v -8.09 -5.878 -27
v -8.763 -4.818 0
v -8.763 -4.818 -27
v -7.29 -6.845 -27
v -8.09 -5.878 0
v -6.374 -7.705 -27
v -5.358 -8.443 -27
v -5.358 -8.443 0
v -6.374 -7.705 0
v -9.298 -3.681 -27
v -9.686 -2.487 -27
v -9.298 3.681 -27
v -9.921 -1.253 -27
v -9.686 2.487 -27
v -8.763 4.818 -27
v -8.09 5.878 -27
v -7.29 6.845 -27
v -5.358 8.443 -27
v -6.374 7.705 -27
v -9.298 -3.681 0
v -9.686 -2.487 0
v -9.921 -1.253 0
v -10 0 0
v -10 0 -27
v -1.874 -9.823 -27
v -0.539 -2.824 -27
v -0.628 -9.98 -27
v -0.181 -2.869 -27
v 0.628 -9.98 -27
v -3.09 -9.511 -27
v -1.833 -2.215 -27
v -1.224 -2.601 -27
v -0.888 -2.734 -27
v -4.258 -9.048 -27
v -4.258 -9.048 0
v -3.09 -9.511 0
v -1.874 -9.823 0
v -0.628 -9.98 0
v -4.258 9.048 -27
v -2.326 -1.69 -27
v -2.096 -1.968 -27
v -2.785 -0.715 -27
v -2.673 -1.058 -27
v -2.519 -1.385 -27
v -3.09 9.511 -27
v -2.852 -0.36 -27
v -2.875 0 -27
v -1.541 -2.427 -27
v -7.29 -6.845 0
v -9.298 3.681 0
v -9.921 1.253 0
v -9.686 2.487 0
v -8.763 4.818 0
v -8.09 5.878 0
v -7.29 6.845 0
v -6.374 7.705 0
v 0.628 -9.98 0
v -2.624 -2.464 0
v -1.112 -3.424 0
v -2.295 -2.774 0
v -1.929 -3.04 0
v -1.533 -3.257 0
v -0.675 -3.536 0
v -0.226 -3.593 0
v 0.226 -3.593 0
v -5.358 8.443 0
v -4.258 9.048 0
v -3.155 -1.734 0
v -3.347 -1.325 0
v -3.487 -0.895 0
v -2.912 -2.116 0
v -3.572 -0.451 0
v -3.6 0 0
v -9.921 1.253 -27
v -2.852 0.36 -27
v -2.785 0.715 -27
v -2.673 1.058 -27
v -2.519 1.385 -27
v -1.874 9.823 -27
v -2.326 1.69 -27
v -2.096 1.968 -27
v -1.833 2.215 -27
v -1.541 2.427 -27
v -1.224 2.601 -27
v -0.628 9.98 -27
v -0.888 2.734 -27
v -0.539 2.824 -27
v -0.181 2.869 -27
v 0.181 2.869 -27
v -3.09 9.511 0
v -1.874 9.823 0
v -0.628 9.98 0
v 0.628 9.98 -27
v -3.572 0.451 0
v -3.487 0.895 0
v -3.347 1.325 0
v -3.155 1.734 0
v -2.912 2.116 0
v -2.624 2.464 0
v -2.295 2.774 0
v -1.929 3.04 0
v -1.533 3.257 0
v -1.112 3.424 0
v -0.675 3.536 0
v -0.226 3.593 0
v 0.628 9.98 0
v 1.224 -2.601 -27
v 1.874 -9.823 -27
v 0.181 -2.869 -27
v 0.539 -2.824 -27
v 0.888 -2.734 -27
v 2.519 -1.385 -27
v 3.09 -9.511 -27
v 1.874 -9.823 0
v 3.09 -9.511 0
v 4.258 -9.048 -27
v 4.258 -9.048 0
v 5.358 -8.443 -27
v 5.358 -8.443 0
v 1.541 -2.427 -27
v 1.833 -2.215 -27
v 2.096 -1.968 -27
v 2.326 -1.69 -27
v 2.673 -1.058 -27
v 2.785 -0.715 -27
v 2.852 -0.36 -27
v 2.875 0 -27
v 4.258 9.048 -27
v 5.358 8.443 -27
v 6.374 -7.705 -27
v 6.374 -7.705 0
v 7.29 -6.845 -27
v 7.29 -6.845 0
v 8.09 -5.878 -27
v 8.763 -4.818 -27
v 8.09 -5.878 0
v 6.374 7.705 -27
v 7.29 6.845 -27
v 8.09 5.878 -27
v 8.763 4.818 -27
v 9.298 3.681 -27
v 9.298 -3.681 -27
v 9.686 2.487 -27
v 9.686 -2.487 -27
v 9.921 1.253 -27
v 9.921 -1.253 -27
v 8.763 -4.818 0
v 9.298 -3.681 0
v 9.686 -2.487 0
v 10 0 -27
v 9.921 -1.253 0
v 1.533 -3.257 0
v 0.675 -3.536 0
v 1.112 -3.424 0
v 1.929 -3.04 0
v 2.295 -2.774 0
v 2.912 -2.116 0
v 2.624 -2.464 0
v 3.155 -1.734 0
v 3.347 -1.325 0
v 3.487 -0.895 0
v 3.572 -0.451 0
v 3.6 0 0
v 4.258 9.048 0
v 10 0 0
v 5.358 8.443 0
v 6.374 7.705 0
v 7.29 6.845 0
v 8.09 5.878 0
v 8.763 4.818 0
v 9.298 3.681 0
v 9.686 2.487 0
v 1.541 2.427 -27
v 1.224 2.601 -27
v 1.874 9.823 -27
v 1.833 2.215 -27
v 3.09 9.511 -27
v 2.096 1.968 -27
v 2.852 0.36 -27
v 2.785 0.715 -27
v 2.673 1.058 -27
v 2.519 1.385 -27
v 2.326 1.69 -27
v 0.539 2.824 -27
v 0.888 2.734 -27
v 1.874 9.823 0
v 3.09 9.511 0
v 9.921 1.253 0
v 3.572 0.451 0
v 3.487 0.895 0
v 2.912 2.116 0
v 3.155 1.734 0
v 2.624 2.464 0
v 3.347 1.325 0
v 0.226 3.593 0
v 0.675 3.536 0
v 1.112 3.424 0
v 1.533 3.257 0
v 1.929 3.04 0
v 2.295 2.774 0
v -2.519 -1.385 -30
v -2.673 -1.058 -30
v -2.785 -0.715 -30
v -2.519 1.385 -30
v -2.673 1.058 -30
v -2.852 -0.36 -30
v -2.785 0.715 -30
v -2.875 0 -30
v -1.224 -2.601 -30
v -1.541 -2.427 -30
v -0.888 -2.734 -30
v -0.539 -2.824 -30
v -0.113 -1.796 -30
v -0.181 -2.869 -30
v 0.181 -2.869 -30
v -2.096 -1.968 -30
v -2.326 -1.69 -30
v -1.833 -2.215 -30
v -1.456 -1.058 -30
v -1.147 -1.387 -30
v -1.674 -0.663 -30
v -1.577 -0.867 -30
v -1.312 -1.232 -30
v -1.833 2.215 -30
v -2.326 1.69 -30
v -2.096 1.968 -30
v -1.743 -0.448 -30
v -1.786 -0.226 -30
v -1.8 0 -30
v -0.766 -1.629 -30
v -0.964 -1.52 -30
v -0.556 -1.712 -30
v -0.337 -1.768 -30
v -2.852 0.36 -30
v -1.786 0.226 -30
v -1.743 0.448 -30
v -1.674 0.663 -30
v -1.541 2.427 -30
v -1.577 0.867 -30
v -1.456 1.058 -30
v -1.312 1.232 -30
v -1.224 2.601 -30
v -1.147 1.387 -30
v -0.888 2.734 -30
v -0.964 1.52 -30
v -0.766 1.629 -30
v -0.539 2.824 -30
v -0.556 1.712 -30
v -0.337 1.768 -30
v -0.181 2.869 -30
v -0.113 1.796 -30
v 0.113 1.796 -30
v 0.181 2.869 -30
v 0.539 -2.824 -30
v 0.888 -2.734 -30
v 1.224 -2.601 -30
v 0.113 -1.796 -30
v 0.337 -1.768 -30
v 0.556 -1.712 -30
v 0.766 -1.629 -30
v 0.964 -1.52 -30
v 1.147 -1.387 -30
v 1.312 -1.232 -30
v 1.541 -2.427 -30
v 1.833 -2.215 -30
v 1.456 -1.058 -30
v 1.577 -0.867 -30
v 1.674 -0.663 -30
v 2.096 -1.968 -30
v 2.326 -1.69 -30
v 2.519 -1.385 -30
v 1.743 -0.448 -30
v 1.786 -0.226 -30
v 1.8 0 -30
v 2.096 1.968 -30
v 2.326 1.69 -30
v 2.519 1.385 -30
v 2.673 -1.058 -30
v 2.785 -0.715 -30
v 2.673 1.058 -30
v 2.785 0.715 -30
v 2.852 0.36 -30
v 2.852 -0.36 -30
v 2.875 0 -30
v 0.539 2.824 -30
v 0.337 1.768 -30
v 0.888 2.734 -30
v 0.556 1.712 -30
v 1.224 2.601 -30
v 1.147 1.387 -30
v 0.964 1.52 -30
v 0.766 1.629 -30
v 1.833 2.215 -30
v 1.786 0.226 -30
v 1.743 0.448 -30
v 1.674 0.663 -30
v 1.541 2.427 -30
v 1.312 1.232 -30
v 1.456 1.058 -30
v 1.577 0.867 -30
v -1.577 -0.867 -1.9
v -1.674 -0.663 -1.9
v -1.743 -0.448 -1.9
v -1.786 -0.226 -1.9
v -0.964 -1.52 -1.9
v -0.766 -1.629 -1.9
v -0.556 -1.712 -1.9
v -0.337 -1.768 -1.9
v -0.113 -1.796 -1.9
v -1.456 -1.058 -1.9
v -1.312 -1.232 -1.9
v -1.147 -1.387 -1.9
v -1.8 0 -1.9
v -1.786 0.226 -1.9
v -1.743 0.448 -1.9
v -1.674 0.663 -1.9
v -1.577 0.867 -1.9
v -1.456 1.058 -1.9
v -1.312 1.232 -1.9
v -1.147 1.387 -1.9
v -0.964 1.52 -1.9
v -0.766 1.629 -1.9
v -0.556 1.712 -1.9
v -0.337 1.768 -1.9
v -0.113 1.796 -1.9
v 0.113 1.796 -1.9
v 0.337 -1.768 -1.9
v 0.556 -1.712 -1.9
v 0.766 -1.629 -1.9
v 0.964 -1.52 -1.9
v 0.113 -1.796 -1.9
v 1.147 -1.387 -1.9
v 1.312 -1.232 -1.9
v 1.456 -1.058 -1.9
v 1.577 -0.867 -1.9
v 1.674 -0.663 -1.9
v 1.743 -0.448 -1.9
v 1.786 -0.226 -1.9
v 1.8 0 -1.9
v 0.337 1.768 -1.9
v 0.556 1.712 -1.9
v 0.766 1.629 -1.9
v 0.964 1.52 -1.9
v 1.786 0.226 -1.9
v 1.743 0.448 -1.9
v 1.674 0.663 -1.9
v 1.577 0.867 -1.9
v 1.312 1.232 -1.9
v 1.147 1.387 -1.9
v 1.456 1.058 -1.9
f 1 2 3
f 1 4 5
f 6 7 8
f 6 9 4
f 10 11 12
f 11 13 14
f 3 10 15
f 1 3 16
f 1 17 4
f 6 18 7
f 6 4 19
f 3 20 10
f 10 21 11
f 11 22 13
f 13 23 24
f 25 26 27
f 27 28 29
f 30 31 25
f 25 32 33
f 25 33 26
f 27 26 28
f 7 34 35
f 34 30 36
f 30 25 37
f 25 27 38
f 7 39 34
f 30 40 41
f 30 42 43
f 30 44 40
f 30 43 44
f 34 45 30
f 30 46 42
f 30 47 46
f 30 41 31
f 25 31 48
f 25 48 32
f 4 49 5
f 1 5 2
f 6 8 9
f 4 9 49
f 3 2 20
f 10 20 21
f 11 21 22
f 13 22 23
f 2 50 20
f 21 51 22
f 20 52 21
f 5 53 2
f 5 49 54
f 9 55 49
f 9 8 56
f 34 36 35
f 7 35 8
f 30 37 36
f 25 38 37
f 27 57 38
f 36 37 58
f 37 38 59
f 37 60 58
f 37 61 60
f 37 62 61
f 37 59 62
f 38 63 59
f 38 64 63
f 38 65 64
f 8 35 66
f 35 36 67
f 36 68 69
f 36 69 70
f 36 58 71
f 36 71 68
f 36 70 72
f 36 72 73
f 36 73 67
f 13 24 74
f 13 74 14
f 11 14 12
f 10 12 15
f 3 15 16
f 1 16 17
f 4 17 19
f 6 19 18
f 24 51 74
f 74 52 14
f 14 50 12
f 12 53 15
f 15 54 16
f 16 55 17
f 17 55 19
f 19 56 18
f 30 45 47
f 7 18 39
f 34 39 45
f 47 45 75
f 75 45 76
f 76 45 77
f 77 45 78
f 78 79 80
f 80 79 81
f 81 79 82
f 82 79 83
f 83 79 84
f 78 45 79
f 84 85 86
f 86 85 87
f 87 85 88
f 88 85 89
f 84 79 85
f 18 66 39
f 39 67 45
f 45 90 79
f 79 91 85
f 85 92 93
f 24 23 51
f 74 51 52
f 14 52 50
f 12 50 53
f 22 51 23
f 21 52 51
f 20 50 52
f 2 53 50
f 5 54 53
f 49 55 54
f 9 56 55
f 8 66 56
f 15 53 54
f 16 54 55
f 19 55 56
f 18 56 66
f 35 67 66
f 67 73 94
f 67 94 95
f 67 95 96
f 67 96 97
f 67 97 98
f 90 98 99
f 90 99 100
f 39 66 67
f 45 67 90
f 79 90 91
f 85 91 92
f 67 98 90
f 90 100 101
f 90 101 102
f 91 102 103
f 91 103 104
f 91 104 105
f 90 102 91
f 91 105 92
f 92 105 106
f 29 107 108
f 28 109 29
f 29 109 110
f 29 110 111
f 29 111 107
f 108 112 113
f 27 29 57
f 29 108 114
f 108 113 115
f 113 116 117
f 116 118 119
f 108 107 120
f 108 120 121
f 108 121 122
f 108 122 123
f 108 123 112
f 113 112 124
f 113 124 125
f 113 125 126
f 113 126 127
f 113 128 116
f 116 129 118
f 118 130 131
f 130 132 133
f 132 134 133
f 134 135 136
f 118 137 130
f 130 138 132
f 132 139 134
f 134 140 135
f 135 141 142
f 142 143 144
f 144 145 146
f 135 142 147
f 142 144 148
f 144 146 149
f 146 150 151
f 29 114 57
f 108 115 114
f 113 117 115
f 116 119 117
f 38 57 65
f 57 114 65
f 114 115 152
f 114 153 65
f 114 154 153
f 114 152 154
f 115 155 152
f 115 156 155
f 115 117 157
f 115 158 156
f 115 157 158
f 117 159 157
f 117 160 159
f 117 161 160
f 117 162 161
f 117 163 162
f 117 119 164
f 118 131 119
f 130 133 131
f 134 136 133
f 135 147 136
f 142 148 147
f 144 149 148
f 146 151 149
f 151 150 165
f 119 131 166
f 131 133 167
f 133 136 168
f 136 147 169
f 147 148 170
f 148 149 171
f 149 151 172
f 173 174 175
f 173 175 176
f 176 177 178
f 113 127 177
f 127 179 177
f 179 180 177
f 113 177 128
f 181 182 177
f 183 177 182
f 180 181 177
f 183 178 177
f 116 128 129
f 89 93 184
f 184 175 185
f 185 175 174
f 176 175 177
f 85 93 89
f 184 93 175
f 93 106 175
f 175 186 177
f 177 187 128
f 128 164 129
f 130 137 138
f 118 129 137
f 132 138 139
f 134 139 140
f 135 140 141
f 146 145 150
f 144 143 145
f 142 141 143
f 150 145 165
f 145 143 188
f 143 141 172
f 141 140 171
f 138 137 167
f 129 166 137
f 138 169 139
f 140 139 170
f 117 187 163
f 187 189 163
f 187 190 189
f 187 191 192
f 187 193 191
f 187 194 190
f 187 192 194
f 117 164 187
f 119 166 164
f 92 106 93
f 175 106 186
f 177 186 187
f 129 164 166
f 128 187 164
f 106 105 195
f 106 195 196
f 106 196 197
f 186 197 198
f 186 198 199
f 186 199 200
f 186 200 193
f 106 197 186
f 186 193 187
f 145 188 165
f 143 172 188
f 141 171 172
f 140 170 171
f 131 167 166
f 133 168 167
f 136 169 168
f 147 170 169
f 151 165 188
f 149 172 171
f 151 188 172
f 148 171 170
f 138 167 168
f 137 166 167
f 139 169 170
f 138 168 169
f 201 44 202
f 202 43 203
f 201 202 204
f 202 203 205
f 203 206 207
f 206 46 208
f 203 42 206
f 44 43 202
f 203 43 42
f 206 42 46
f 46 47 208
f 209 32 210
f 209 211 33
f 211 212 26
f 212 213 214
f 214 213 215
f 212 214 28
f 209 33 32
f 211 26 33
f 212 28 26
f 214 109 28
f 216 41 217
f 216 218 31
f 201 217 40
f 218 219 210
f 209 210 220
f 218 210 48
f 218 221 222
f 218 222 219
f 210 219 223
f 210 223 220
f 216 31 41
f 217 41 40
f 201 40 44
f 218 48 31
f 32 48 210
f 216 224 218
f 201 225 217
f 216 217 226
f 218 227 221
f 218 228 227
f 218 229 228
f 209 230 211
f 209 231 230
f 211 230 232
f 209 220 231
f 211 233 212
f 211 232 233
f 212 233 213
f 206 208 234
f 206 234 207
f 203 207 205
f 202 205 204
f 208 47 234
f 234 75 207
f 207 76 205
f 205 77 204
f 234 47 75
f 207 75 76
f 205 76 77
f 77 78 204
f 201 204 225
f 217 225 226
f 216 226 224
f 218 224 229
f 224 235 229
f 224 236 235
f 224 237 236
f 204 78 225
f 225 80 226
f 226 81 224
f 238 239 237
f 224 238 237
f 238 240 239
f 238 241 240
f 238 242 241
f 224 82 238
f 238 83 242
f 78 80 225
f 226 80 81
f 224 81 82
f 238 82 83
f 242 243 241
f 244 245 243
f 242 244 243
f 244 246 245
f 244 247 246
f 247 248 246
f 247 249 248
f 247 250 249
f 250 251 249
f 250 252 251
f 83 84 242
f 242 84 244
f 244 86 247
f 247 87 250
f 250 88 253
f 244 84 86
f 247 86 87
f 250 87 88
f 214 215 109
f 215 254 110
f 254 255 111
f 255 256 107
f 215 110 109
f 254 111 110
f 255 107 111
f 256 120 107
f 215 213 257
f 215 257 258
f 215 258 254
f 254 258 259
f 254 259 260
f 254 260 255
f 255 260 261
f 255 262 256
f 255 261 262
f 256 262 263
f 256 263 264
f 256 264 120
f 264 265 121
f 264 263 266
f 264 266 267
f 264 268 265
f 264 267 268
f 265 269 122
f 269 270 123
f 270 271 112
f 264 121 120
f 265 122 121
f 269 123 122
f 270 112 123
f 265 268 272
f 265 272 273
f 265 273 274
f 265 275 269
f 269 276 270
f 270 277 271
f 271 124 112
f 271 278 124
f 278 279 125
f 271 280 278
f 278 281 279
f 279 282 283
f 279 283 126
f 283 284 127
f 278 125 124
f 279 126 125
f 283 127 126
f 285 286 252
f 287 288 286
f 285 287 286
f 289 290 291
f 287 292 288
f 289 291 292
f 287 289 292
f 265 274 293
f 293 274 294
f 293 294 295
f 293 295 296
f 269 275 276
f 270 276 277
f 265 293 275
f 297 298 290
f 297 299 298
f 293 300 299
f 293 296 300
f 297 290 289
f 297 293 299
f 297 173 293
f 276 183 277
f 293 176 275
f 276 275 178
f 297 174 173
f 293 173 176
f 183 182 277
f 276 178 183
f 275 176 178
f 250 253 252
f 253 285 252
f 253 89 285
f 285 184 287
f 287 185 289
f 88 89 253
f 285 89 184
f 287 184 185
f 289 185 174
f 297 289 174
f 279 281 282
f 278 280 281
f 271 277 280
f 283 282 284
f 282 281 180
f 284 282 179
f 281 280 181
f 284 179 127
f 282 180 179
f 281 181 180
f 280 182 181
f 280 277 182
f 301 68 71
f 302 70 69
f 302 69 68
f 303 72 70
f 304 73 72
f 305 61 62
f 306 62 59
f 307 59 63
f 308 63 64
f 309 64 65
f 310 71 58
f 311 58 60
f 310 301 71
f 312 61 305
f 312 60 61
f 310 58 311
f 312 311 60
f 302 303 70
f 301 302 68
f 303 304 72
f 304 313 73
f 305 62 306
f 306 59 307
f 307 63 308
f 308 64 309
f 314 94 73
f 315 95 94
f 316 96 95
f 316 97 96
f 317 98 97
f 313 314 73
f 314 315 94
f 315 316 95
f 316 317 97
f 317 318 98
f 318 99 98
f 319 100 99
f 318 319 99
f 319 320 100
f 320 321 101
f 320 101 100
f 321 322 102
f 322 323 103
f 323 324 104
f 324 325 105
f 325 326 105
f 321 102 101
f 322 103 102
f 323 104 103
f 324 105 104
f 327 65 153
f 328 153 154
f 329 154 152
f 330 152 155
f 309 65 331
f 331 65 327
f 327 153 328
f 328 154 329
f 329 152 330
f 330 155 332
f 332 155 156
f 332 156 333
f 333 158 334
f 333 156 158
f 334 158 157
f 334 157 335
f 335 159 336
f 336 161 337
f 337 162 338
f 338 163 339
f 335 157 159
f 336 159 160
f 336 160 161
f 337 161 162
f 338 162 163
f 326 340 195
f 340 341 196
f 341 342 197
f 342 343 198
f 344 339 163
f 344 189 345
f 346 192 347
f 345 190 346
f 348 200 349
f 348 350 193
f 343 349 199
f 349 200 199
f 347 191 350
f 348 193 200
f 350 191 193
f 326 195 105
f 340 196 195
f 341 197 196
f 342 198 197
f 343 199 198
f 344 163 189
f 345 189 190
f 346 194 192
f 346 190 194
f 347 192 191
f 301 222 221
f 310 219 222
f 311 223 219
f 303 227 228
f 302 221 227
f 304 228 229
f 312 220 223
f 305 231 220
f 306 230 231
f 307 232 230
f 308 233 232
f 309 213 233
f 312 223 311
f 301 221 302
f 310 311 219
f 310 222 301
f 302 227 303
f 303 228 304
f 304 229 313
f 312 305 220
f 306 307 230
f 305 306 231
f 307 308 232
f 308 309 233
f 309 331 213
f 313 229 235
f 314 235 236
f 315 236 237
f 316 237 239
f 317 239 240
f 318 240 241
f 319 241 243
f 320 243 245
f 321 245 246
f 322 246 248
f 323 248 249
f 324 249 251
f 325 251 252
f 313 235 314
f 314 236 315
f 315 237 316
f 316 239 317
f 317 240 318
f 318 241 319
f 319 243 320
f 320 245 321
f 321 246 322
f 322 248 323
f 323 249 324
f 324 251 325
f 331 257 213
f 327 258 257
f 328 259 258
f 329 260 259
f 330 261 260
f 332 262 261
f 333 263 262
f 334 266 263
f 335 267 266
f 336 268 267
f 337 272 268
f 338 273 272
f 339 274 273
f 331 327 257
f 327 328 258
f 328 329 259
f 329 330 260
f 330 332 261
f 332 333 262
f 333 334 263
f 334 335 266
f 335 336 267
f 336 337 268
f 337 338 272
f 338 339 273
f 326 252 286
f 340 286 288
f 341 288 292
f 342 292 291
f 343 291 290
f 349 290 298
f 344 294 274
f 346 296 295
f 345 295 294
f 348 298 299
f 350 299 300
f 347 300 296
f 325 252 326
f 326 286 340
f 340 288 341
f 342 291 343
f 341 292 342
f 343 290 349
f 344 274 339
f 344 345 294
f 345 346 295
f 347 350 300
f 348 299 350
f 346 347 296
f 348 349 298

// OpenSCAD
$fn = 50;

difference() {
	union() {
		translate(v = [0, 0, -27.0]) {
			cylinder(h = 27, r = 10.0);
		}
		#translate(v = [0, 0, -30.0]) {
			cylinder(h = 30, r = 2.875);
		}
	}
	union() {
		translate(v = [0, 0, 0]) {
			rotate(a = [0, 0, 0]) {
				difference() {
					union() {
						translate(v = [0, 0, -30.0]) {
							cylinder(h = 30, r = 1.5);
						}
						translate(v = [0, 0, -1.9]) {
							cylinder(h = 1.9, r1 = 1.8, r2 = 3.6);
						}
						translate(v = [0, 0, -30.0]) {
							cylinder(h = 30, r = 1.8);
						}
						translate(v = [0, 0, -30.0]) {
							cylinder(h = 30, r = 1.5);
						}
					}
					union();
				}
			}
		}
	}
}
